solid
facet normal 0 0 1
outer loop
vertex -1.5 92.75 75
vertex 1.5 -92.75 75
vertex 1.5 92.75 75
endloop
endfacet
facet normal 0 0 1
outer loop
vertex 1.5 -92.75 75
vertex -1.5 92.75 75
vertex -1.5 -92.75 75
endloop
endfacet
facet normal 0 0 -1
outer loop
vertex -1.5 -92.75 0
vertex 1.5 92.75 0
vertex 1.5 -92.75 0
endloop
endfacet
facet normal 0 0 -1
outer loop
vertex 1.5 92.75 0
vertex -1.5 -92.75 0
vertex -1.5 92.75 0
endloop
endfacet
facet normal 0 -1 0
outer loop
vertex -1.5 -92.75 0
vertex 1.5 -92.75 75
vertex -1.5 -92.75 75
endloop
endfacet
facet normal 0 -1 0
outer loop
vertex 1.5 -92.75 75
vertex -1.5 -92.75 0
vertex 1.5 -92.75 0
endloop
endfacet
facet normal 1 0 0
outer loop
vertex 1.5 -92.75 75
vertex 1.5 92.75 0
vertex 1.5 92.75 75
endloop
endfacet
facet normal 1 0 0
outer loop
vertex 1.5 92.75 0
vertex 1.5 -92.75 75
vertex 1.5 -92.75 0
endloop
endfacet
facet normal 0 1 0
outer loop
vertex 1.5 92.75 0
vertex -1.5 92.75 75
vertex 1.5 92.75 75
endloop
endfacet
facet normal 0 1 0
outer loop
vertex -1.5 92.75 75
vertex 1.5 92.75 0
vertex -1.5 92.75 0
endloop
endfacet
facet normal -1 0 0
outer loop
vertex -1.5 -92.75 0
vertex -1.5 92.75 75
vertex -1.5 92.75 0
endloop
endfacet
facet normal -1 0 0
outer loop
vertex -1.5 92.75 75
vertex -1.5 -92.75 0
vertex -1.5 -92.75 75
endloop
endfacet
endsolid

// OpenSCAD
// file: Inlet.scad
$fn = 100;
tiny = 0.01;


/******************************************************
 * dx,dy: Maße, wie bei 'Boden' angegeben.
 *****************************************************/
module inlet_top_down(dx,dy) {
  h1 = 3;  
  dx1 = 5.9;
  dx2 = 4.0; // vier mal Fase an Ecken

  difference() {
     translate([0,0,h1/2]) cube([dx-2*dx1,dy-2*dx1,h1], true); 
     translate([+dx/2-dx1,+dy/2-dx1,h1/2-tiny]) rotate([0,0,45]) cube([dx2,dx2,h1+3*tiny], true);
     translate([+dx/2-dx1,-dy/2+dx1,h1/2-tiny]) rotate([0,0,45]) cube([dx2,dx2,h1+3*tiny], true);
     translate([-dx/2+dx1,+dy/2-dx1,h1/2-tiny]) rotate([0,0,45]) cube([dx2,dx2,h1+3*tiny], true);
     translate([-dx/2+dx1,-dy/2+dx1,h1/2-tiny]) rotate([0,0,45]) cube([dx2,dx2,h1+3*tiny], true);
     }
}


/******************************************************
 * dy: Maß, wie bei 'Boden' angegeben.
 * h:  Maß, wie bei 'Kante' angegeben.
 *****************************************************/
module inlet_front_back(h,dy) {
  h1 = 3;
  dy1 = 12+12.5;
  translate([0,0,h/2]) cube([h1,dy-dy1,h], true);
}


/******************************************************
 * dx: Maß, wie bei 'Boden' angegeben.
 * h:  Maß, wie bei 'Kante' angegeben.
 *****************************************************/
module inlet_left_right(h,dx) {
  h1 = 3;
  dx1 = 12+12.5;
  translate([0,0,h/2]) cube([dx-dx1,h1,h], true);
}
// main file
$fn = 100;

use <Inlet.scad>


inlet_front_back(75,210);
